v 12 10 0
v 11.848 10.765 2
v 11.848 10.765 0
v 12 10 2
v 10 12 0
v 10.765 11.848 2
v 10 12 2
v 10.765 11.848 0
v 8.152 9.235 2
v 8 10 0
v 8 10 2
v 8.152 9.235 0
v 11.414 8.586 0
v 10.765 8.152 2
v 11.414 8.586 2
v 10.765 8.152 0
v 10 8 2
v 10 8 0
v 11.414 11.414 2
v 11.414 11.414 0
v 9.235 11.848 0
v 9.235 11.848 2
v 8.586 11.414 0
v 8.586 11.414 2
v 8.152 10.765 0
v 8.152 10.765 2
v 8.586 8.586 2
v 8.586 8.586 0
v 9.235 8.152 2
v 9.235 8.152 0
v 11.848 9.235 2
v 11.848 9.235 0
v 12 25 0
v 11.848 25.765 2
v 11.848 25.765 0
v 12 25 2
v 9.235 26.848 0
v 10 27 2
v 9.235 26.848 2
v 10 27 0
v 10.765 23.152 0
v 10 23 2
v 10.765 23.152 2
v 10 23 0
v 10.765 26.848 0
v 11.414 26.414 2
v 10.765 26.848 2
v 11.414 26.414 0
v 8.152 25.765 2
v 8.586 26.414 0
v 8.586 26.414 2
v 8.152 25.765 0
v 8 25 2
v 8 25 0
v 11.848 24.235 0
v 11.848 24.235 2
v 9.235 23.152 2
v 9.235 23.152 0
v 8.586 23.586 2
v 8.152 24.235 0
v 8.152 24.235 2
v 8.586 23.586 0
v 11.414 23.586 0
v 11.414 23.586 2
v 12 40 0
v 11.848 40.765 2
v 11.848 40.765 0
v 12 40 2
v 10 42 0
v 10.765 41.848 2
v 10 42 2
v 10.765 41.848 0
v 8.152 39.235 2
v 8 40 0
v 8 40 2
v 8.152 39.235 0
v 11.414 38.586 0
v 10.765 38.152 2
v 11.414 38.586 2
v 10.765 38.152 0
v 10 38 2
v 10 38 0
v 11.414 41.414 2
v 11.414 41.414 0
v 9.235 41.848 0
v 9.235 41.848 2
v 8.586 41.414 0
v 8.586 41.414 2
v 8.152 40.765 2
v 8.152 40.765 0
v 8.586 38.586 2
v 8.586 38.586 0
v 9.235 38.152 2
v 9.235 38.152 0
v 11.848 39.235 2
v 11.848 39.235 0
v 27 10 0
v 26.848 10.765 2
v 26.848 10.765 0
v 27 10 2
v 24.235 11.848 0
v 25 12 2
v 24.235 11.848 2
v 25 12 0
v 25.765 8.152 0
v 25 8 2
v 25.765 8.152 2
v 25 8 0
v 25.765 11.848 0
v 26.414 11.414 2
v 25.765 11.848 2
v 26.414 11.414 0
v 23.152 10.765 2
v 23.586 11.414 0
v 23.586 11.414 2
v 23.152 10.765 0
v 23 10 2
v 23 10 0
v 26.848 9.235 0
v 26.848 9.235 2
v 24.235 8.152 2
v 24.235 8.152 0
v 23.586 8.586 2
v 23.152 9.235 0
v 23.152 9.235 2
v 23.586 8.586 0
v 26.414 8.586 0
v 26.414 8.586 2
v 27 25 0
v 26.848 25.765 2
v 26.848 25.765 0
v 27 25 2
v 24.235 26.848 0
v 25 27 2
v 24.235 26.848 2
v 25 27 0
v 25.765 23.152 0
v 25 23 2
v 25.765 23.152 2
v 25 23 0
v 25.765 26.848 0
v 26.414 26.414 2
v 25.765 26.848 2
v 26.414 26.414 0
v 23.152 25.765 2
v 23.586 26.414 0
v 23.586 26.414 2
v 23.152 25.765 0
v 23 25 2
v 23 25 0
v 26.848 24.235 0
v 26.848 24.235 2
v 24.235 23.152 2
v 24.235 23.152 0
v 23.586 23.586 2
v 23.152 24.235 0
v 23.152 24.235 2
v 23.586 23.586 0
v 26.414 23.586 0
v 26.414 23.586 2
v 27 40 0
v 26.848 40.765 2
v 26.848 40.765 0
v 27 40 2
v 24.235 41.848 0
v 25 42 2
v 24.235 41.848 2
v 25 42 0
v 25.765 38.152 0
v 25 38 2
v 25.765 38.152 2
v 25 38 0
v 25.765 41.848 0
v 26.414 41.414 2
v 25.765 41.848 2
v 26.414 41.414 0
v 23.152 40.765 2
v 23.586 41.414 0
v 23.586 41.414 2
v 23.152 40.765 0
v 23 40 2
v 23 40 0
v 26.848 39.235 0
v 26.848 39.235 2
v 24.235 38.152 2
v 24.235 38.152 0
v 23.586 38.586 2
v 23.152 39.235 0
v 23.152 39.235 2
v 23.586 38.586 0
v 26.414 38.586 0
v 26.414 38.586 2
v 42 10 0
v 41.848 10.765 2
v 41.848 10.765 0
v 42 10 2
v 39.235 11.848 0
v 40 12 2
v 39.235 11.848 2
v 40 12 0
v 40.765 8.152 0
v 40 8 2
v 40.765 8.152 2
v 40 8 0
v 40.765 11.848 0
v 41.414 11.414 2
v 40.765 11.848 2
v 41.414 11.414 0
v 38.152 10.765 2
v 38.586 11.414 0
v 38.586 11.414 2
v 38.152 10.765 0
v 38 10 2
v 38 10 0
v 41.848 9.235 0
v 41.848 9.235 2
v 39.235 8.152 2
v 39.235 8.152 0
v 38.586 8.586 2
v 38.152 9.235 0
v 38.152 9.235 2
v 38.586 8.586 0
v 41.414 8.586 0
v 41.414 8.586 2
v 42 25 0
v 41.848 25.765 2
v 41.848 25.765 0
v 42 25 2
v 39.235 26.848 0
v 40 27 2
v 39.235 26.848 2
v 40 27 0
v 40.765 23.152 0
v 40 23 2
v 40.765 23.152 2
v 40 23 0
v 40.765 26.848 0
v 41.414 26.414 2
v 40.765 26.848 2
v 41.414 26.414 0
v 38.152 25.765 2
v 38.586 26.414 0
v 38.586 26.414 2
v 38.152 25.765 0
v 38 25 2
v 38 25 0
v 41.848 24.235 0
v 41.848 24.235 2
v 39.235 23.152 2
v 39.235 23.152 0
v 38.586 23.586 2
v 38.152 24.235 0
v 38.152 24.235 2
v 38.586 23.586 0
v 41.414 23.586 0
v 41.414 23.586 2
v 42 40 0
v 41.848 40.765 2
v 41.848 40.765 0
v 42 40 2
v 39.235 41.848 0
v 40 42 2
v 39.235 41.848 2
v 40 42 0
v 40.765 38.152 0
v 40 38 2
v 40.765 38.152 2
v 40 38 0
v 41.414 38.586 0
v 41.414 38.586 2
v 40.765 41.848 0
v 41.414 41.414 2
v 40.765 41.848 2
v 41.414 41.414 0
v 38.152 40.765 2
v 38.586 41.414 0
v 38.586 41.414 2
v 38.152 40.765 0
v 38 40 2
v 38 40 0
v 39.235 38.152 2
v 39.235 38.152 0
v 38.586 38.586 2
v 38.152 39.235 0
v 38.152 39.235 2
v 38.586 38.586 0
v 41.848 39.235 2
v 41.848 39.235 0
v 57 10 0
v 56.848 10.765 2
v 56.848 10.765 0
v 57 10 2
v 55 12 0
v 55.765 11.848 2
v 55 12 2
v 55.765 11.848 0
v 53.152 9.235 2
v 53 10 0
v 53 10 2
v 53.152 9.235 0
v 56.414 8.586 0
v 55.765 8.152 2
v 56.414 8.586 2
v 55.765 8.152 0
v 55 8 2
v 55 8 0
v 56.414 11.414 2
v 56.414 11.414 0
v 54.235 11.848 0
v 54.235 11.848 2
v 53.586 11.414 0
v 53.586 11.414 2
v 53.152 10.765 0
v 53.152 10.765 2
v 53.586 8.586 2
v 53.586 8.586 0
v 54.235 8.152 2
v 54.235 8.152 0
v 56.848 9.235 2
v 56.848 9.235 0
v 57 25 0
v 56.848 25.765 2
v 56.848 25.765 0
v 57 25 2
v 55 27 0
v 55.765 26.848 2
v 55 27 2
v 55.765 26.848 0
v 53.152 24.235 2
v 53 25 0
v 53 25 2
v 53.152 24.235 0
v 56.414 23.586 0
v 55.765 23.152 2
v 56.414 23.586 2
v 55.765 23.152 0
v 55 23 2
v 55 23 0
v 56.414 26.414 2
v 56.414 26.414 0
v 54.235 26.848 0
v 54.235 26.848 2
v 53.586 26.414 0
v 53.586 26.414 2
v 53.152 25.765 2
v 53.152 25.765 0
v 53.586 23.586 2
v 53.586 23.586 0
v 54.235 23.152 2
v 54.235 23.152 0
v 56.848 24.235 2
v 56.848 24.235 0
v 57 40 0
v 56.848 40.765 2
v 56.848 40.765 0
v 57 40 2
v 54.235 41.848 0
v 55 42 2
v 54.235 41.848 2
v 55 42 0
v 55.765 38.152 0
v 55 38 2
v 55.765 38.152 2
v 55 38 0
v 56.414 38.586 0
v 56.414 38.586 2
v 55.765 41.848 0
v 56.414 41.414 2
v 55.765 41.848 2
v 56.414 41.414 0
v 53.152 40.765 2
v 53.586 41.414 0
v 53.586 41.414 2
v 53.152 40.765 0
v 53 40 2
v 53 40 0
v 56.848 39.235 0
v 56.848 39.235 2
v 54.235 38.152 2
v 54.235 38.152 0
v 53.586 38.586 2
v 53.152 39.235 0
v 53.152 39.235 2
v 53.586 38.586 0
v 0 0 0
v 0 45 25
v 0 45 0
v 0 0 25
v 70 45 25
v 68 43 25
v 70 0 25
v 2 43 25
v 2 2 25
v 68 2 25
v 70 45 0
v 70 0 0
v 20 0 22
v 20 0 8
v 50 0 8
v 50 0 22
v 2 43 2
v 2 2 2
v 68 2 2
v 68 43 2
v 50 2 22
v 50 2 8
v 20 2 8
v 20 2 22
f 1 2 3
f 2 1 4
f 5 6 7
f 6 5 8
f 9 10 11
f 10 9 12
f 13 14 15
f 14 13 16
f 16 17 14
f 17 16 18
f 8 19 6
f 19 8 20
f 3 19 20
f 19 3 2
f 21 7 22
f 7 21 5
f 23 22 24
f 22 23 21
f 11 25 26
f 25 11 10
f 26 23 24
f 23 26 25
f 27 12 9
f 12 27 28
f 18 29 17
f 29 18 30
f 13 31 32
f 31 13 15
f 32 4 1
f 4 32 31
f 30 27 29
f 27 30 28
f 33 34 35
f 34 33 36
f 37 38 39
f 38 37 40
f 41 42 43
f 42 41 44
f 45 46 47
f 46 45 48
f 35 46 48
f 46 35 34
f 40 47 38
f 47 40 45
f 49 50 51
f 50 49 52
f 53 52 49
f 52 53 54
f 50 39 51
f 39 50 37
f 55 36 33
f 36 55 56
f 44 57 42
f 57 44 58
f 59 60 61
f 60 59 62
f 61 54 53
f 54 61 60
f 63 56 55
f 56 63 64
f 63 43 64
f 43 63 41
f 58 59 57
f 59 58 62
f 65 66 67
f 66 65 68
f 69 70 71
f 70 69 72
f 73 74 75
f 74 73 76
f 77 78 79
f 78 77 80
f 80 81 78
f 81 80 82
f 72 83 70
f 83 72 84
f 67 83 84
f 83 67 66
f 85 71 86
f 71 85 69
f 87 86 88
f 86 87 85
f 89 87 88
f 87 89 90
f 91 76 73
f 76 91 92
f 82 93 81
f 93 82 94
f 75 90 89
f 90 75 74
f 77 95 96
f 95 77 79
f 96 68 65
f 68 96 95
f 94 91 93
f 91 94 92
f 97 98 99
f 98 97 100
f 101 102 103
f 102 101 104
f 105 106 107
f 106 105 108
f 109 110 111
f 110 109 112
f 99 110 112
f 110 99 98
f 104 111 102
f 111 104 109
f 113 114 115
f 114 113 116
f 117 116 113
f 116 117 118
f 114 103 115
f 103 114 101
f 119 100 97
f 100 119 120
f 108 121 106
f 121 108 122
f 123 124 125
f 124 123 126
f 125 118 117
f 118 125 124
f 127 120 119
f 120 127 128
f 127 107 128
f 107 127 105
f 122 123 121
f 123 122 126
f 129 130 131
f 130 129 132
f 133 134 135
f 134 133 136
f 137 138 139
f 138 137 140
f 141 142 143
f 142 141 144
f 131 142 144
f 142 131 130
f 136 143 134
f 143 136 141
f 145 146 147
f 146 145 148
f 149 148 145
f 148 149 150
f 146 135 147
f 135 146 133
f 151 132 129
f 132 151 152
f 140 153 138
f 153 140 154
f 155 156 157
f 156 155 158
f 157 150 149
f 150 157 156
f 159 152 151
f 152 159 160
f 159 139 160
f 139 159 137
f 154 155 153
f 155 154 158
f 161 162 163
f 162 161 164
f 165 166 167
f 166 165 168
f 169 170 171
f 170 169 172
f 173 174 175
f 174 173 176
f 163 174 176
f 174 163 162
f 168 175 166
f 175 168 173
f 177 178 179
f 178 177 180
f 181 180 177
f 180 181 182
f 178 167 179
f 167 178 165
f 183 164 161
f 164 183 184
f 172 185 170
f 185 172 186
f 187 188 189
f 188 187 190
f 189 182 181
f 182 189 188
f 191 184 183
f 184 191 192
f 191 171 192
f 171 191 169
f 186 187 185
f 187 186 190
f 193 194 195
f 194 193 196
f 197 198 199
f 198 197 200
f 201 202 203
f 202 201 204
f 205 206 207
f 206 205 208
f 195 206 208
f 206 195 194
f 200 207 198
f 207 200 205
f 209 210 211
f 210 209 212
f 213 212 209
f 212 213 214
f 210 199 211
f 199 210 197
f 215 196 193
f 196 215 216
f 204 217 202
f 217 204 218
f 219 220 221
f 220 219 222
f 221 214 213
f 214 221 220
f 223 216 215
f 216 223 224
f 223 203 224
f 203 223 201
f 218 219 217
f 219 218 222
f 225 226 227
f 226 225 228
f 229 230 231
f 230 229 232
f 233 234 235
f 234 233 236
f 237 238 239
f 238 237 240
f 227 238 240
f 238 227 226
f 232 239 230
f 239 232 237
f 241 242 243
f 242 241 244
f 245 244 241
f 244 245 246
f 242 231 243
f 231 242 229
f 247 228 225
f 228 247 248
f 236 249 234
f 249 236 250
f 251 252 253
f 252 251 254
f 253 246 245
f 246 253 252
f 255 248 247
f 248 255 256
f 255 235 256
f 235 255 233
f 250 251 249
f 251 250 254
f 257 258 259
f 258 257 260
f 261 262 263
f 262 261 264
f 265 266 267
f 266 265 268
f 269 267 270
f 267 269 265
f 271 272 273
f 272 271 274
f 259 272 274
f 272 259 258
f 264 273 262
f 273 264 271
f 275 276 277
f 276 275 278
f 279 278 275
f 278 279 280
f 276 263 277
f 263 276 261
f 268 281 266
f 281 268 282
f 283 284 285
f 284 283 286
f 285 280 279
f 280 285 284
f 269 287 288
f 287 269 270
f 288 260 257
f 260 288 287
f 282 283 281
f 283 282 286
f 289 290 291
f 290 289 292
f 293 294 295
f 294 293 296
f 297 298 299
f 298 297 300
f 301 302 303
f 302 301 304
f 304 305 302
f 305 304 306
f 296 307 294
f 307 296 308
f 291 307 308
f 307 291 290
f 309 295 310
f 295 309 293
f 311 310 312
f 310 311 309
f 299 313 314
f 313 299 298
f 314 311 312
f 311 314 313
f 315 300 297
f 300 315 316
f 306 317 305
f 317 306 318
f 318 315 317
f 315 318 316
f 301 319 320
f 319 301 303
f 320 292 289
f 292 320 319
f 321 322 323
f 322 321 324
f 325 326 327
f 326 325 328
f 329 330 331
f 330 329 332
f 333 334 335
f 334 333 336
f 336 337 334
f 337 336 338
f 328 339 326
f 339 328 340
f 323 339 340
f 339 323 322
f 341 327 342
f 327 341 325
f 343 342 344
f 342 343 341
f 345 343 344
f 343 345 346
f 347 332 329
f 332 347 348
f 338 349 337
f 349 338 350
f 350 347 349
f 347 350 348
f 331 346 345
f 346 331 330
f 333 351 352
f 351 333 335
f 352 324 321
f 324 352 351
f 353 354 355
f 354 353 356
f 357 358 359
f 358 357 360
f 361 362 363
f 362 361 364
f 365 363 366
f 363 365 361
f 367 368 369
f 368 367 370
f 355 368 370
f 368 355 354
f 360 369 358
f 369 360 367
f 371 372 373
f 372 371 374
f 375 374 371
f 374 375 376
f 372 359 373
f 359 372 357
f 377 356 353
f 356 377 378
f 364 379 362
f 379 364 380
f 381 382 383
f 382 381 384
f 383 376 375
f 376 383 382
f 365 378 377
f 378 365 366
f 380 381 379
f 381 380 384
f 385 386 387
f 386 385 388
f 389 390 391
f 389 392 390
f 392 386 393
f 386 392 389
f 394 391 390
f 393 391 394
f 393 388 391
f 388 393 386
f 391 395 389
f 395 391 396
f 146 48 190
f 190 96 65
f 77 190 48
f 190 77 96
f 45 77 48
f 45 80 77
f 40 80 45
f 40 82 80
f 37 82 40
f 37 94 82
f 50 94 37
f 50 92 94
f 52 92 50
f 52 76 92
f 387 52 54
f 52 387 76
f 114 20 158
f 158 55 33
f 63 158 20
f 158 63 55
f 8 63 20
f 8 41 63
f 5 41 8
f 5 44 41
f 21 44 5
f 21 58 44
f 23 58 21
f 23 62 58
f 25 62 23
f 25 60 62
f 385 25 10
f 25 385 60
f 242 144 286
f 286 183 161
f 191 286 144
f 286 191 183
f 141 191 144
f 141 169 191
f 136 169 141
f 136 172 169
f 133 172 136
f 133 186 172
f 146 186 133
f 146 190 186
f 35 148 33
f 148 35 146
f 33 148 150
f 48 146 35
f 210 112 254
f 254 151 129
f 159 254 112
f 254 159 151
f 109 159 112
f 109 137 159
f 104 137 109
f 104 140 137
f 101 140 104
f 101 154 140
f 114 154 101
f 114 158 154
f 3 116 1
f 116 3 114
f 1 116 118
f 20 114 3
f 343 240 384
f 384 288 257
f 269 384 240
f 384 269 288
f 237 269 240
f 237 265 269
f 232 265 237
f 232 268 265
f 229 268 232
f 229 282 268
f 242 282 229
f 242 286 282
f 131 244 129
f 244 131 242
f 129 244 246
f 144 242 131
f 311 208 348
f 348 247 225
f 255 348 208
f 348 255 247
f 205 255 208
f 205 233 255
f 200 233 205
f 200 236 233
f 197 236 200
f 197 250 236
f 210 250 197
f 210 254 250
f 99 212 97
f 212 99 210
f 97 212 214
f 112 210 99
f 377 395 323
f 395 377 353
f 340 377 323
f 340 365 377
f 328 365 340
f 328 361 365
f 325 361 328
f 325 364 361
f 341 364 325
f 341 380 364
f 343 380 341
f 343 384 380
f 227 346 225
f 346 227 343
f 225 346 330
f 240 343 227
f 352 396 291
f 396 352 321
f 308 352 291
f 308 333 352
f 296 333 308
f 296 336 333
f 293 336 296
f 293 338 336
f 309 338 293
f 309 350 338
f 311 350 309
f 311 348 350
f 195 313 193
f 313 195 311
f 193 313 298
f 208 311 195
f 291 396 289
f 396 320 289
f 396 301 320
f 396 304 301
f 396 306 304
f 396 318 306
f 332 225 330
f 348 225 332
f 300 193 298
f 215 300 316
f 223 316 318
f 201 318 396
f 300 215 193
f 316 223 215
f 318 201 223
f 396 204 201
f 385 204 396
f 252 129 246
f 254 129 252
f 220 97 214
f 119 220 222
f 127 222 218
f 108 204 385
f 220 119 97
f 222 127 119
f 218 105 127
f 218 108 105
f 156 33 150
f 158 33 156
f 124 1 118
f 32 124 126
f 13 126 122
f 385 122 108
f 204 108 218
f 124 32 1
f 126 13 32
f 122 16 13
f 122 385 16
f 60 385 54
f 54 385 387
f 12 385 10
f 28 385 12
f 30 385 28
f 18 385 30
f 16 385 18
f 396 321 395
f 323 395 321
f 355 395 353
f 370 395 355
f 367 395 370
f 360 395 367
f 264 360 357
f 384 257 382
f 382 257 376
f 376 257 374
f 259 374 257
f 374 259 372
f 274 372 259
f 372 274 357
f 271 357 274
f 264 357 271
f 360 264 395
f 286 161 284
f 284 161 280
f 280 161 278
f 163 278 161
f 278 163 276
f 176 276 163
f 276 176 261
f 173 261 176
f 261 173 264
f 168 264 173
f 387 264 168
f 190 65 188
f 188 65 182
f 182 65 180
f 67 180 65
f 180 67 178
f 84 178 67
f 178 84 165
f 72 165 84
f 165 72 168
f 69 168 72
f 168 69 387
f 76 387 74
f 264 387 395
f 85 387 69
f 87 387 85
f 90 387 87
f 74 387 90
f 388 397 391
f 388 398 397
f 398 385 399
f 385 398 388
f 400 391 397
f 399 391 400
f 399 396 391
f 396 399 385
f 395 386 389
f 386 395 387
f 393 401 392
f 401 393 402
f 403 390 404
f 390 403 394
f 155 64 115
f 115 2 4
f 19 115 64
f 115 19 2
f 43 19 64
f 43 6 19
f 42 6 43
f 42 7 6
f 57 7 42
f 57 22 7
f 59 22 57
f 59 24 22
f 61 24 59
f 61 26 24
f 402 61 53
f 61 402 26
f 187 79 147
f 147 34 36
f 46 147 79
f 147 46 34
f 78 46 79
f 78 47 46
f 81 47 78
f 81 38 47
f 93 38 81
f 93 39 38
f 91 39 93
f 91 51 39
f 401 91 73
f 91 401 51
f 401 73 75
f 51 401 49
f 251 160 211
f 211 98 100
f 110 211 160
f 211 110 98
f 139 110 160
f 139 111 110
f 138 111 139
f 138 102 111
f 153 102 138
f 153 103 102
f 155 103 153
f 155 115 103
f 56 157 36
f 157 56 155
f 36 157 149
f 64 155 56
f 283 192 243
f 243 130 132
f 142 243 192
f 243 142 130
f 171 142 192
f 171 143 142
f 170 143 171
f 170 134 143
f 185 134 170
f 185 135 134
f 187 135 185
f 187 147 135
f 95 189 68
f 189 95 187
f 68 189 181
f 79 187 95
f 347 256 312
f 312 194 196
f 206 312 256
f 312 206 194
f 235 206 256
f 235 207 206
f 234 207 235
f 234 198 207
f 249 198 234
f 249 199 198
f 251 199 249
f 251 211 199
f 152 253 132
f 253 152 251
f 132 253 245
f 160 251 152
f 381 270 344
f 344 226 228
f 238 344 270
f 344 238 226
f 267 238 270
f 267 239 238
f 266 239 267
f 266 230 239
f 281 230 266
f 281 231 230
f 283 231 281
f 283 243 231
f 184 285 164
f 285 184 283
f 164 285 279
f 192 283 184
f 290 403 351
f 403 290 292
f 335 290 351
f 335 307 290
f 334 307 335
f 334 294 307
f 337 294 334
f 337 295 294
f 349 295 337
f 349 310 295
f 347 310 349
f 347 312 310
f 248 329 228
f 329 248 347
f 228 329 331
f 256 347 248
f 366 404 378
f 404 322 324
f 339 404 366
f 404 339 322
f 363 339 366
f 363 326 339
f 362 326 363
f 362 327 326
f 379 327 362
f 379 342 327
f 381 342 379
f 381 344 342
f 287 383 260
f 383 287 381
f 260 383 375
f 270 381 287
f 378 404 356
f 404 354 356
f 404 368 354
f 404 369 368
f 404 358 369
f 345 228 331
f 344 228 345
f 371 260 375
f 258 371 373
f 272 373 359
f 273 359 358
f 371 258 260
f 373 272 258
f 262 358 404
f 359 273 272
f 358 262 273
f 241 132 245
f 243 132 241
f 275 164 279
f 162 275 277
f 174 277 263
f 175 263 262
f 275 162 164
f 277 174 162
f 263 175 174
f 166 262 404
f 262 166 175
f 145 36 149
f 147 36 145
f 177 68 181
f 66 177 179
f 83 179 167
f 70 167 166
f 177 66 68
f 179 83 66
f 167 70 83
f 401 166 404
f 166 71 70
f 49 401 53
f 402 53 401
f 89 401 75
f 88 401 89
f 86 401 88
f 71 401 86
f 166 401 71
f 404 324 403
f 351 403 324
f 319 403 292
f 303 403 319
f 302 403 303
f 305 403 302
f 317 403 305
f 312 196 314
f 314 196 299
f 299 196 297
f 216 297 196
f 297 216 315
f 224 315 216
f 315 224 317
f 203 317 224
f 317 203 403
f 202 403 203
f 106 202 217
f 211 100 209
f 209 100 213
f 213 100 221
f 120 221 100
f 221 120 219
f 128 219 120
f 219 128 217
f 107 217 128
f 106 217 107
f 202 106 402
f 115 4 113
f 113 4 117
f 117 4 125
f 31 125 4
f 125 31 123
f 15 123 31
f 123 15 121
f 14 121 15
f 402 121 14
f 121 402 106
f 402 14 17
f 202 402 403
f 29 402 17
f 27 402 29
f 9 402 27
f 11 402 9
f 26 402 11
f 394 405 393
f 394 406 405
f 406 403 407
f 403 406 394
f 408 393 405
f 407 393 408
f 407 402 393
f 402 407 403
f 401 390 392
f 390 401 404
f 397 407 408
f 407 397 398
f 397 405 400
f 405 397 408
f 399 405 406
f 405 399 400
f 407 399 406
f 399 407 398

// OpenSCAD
// AI Agent Status Companion — 3D 外壳模型
// 适用于 ESP32 DevKit + SSD1306 128x64 + WS2812B
// 用 OpenSCAD 打开并导出 STL 打印
// 参数单位: mm

// ============ 可调参数 ============
wall = 2.0;           // 壁厚
tolerance = 0.4;      // 容差
box_w = 70;           // 外壳宽
box_d = 45;           // 外壳深
box_h = 25;           // 外壳高

// OLED 窗口 (正面)
oled_w = 30;          // SSD1306 可视区宽
oled_h = 14;          // SSD1306 可视区高
oled_x = (box_w - oled_w) / 2;  // 居中
oled_y = 8;           // 距顶部距离

// LED 孔 (正面)
led_d = 5;            // LED 开孔直径
led_x = box_w / 2;    // 居中
led_y = oled_y + oled_h + 6;

// USB 孔 (侧面)
usb_w = 10;
usb_h = 5;
usb_z = 4;            // 距底部高度

// 通风孔
vent_r = 2;
vent_spacing = 10;

// ============ 主体 ============
difference() {
    // 外壳本体
    cube([box_w, box_d, box_h]);
    
    // 内部挖空
    translate([wall, wall, wall])
        cube([box_w - 2*wall, box_d - 2*wall, box_h - wall + 1]);
    
    // OLED 窗口
    translate([oled_x, -1, oled_y])
        cube([oled_w, wall + 2, oled_h]);
    
    // LED 孔
    translate([led_x, -1, led_y])
        rotate([-90, 0, 0])
            cylinder(d=led_d, h=wall + 2, $fn=32);
    
    // USB 孔 (右侧面)
    translate([box_w + 1, box_d/2 - usb_w/2, usb_z])
        cube([wall + 2, usb_w, usb_h]);
    
    // 通风孔 (背面)
    for (i = [0:2]) {
        for (j = [0:1]) {
            translate([vent_spacing + i*vent_spacing*2,
                       box_d - wall - 1,
                       vent_spacing + j*vent_spacing*2])
                rotate([90, 0, 0])
                    cylinder(r=vent_r, h=wall + 2, $fn=16);
        }
    }
    
    // 底部通风孔
    for (i = [0:3]) {
        for (j = [0:2]) {
            translate([vent_spacing + i*vent_spacing*1.5,
                       vent_spacing + j*vent_spacing*1.5,
                       -1])
                cylinder(r=vent_r, h=wall + 2, $fn=16);
        }
    }
}

// ============ 盖板 (可选分离打印) ============
// 取消注释以下代码打印独立盖板
/*
translate([0, box_d + 10, 0]) {
    difference() {
        cube([box_w, box_d, wall]);
        
        // OLED 窗口
        translate([oled_x, wall - 1, 0])
            cube([oled_w, wall + 2, oled_h]);
        
        // LED 孔
        translate([led_x, wall - 1, led_y - wall])
            rotate([-90, 0, 0])
                cylinder(d=led_d, h=wall + 2, $fn=32);
        
        // 螺丝孔 (4 角)
        for (x = [5, box_w - 5]) {
            for (y = [5, box_d - 5]) {
                translate([x, y, -1])
                    cylinder(d=2.5, h=wall + 2, $fn=16);
            }
        }
    }
}
*/

echo("=== 打印参数 ===");
echo(str("外壳尺寸: ", box_w, " x ", box_d, " x ", box_h, " mm"));
echo(str("壁厚: ", wall, " mm"));
echo(str("材料用量估计: ~",
    (box_w*box_d*box_h - (box_w-2*wall)*(box_d-2*wall)*(box_h-wall)) / 1000,
    " cm³"));
echo("建议: PLA, 0.2mm 层高, 15% 填充, 无需支撑");
